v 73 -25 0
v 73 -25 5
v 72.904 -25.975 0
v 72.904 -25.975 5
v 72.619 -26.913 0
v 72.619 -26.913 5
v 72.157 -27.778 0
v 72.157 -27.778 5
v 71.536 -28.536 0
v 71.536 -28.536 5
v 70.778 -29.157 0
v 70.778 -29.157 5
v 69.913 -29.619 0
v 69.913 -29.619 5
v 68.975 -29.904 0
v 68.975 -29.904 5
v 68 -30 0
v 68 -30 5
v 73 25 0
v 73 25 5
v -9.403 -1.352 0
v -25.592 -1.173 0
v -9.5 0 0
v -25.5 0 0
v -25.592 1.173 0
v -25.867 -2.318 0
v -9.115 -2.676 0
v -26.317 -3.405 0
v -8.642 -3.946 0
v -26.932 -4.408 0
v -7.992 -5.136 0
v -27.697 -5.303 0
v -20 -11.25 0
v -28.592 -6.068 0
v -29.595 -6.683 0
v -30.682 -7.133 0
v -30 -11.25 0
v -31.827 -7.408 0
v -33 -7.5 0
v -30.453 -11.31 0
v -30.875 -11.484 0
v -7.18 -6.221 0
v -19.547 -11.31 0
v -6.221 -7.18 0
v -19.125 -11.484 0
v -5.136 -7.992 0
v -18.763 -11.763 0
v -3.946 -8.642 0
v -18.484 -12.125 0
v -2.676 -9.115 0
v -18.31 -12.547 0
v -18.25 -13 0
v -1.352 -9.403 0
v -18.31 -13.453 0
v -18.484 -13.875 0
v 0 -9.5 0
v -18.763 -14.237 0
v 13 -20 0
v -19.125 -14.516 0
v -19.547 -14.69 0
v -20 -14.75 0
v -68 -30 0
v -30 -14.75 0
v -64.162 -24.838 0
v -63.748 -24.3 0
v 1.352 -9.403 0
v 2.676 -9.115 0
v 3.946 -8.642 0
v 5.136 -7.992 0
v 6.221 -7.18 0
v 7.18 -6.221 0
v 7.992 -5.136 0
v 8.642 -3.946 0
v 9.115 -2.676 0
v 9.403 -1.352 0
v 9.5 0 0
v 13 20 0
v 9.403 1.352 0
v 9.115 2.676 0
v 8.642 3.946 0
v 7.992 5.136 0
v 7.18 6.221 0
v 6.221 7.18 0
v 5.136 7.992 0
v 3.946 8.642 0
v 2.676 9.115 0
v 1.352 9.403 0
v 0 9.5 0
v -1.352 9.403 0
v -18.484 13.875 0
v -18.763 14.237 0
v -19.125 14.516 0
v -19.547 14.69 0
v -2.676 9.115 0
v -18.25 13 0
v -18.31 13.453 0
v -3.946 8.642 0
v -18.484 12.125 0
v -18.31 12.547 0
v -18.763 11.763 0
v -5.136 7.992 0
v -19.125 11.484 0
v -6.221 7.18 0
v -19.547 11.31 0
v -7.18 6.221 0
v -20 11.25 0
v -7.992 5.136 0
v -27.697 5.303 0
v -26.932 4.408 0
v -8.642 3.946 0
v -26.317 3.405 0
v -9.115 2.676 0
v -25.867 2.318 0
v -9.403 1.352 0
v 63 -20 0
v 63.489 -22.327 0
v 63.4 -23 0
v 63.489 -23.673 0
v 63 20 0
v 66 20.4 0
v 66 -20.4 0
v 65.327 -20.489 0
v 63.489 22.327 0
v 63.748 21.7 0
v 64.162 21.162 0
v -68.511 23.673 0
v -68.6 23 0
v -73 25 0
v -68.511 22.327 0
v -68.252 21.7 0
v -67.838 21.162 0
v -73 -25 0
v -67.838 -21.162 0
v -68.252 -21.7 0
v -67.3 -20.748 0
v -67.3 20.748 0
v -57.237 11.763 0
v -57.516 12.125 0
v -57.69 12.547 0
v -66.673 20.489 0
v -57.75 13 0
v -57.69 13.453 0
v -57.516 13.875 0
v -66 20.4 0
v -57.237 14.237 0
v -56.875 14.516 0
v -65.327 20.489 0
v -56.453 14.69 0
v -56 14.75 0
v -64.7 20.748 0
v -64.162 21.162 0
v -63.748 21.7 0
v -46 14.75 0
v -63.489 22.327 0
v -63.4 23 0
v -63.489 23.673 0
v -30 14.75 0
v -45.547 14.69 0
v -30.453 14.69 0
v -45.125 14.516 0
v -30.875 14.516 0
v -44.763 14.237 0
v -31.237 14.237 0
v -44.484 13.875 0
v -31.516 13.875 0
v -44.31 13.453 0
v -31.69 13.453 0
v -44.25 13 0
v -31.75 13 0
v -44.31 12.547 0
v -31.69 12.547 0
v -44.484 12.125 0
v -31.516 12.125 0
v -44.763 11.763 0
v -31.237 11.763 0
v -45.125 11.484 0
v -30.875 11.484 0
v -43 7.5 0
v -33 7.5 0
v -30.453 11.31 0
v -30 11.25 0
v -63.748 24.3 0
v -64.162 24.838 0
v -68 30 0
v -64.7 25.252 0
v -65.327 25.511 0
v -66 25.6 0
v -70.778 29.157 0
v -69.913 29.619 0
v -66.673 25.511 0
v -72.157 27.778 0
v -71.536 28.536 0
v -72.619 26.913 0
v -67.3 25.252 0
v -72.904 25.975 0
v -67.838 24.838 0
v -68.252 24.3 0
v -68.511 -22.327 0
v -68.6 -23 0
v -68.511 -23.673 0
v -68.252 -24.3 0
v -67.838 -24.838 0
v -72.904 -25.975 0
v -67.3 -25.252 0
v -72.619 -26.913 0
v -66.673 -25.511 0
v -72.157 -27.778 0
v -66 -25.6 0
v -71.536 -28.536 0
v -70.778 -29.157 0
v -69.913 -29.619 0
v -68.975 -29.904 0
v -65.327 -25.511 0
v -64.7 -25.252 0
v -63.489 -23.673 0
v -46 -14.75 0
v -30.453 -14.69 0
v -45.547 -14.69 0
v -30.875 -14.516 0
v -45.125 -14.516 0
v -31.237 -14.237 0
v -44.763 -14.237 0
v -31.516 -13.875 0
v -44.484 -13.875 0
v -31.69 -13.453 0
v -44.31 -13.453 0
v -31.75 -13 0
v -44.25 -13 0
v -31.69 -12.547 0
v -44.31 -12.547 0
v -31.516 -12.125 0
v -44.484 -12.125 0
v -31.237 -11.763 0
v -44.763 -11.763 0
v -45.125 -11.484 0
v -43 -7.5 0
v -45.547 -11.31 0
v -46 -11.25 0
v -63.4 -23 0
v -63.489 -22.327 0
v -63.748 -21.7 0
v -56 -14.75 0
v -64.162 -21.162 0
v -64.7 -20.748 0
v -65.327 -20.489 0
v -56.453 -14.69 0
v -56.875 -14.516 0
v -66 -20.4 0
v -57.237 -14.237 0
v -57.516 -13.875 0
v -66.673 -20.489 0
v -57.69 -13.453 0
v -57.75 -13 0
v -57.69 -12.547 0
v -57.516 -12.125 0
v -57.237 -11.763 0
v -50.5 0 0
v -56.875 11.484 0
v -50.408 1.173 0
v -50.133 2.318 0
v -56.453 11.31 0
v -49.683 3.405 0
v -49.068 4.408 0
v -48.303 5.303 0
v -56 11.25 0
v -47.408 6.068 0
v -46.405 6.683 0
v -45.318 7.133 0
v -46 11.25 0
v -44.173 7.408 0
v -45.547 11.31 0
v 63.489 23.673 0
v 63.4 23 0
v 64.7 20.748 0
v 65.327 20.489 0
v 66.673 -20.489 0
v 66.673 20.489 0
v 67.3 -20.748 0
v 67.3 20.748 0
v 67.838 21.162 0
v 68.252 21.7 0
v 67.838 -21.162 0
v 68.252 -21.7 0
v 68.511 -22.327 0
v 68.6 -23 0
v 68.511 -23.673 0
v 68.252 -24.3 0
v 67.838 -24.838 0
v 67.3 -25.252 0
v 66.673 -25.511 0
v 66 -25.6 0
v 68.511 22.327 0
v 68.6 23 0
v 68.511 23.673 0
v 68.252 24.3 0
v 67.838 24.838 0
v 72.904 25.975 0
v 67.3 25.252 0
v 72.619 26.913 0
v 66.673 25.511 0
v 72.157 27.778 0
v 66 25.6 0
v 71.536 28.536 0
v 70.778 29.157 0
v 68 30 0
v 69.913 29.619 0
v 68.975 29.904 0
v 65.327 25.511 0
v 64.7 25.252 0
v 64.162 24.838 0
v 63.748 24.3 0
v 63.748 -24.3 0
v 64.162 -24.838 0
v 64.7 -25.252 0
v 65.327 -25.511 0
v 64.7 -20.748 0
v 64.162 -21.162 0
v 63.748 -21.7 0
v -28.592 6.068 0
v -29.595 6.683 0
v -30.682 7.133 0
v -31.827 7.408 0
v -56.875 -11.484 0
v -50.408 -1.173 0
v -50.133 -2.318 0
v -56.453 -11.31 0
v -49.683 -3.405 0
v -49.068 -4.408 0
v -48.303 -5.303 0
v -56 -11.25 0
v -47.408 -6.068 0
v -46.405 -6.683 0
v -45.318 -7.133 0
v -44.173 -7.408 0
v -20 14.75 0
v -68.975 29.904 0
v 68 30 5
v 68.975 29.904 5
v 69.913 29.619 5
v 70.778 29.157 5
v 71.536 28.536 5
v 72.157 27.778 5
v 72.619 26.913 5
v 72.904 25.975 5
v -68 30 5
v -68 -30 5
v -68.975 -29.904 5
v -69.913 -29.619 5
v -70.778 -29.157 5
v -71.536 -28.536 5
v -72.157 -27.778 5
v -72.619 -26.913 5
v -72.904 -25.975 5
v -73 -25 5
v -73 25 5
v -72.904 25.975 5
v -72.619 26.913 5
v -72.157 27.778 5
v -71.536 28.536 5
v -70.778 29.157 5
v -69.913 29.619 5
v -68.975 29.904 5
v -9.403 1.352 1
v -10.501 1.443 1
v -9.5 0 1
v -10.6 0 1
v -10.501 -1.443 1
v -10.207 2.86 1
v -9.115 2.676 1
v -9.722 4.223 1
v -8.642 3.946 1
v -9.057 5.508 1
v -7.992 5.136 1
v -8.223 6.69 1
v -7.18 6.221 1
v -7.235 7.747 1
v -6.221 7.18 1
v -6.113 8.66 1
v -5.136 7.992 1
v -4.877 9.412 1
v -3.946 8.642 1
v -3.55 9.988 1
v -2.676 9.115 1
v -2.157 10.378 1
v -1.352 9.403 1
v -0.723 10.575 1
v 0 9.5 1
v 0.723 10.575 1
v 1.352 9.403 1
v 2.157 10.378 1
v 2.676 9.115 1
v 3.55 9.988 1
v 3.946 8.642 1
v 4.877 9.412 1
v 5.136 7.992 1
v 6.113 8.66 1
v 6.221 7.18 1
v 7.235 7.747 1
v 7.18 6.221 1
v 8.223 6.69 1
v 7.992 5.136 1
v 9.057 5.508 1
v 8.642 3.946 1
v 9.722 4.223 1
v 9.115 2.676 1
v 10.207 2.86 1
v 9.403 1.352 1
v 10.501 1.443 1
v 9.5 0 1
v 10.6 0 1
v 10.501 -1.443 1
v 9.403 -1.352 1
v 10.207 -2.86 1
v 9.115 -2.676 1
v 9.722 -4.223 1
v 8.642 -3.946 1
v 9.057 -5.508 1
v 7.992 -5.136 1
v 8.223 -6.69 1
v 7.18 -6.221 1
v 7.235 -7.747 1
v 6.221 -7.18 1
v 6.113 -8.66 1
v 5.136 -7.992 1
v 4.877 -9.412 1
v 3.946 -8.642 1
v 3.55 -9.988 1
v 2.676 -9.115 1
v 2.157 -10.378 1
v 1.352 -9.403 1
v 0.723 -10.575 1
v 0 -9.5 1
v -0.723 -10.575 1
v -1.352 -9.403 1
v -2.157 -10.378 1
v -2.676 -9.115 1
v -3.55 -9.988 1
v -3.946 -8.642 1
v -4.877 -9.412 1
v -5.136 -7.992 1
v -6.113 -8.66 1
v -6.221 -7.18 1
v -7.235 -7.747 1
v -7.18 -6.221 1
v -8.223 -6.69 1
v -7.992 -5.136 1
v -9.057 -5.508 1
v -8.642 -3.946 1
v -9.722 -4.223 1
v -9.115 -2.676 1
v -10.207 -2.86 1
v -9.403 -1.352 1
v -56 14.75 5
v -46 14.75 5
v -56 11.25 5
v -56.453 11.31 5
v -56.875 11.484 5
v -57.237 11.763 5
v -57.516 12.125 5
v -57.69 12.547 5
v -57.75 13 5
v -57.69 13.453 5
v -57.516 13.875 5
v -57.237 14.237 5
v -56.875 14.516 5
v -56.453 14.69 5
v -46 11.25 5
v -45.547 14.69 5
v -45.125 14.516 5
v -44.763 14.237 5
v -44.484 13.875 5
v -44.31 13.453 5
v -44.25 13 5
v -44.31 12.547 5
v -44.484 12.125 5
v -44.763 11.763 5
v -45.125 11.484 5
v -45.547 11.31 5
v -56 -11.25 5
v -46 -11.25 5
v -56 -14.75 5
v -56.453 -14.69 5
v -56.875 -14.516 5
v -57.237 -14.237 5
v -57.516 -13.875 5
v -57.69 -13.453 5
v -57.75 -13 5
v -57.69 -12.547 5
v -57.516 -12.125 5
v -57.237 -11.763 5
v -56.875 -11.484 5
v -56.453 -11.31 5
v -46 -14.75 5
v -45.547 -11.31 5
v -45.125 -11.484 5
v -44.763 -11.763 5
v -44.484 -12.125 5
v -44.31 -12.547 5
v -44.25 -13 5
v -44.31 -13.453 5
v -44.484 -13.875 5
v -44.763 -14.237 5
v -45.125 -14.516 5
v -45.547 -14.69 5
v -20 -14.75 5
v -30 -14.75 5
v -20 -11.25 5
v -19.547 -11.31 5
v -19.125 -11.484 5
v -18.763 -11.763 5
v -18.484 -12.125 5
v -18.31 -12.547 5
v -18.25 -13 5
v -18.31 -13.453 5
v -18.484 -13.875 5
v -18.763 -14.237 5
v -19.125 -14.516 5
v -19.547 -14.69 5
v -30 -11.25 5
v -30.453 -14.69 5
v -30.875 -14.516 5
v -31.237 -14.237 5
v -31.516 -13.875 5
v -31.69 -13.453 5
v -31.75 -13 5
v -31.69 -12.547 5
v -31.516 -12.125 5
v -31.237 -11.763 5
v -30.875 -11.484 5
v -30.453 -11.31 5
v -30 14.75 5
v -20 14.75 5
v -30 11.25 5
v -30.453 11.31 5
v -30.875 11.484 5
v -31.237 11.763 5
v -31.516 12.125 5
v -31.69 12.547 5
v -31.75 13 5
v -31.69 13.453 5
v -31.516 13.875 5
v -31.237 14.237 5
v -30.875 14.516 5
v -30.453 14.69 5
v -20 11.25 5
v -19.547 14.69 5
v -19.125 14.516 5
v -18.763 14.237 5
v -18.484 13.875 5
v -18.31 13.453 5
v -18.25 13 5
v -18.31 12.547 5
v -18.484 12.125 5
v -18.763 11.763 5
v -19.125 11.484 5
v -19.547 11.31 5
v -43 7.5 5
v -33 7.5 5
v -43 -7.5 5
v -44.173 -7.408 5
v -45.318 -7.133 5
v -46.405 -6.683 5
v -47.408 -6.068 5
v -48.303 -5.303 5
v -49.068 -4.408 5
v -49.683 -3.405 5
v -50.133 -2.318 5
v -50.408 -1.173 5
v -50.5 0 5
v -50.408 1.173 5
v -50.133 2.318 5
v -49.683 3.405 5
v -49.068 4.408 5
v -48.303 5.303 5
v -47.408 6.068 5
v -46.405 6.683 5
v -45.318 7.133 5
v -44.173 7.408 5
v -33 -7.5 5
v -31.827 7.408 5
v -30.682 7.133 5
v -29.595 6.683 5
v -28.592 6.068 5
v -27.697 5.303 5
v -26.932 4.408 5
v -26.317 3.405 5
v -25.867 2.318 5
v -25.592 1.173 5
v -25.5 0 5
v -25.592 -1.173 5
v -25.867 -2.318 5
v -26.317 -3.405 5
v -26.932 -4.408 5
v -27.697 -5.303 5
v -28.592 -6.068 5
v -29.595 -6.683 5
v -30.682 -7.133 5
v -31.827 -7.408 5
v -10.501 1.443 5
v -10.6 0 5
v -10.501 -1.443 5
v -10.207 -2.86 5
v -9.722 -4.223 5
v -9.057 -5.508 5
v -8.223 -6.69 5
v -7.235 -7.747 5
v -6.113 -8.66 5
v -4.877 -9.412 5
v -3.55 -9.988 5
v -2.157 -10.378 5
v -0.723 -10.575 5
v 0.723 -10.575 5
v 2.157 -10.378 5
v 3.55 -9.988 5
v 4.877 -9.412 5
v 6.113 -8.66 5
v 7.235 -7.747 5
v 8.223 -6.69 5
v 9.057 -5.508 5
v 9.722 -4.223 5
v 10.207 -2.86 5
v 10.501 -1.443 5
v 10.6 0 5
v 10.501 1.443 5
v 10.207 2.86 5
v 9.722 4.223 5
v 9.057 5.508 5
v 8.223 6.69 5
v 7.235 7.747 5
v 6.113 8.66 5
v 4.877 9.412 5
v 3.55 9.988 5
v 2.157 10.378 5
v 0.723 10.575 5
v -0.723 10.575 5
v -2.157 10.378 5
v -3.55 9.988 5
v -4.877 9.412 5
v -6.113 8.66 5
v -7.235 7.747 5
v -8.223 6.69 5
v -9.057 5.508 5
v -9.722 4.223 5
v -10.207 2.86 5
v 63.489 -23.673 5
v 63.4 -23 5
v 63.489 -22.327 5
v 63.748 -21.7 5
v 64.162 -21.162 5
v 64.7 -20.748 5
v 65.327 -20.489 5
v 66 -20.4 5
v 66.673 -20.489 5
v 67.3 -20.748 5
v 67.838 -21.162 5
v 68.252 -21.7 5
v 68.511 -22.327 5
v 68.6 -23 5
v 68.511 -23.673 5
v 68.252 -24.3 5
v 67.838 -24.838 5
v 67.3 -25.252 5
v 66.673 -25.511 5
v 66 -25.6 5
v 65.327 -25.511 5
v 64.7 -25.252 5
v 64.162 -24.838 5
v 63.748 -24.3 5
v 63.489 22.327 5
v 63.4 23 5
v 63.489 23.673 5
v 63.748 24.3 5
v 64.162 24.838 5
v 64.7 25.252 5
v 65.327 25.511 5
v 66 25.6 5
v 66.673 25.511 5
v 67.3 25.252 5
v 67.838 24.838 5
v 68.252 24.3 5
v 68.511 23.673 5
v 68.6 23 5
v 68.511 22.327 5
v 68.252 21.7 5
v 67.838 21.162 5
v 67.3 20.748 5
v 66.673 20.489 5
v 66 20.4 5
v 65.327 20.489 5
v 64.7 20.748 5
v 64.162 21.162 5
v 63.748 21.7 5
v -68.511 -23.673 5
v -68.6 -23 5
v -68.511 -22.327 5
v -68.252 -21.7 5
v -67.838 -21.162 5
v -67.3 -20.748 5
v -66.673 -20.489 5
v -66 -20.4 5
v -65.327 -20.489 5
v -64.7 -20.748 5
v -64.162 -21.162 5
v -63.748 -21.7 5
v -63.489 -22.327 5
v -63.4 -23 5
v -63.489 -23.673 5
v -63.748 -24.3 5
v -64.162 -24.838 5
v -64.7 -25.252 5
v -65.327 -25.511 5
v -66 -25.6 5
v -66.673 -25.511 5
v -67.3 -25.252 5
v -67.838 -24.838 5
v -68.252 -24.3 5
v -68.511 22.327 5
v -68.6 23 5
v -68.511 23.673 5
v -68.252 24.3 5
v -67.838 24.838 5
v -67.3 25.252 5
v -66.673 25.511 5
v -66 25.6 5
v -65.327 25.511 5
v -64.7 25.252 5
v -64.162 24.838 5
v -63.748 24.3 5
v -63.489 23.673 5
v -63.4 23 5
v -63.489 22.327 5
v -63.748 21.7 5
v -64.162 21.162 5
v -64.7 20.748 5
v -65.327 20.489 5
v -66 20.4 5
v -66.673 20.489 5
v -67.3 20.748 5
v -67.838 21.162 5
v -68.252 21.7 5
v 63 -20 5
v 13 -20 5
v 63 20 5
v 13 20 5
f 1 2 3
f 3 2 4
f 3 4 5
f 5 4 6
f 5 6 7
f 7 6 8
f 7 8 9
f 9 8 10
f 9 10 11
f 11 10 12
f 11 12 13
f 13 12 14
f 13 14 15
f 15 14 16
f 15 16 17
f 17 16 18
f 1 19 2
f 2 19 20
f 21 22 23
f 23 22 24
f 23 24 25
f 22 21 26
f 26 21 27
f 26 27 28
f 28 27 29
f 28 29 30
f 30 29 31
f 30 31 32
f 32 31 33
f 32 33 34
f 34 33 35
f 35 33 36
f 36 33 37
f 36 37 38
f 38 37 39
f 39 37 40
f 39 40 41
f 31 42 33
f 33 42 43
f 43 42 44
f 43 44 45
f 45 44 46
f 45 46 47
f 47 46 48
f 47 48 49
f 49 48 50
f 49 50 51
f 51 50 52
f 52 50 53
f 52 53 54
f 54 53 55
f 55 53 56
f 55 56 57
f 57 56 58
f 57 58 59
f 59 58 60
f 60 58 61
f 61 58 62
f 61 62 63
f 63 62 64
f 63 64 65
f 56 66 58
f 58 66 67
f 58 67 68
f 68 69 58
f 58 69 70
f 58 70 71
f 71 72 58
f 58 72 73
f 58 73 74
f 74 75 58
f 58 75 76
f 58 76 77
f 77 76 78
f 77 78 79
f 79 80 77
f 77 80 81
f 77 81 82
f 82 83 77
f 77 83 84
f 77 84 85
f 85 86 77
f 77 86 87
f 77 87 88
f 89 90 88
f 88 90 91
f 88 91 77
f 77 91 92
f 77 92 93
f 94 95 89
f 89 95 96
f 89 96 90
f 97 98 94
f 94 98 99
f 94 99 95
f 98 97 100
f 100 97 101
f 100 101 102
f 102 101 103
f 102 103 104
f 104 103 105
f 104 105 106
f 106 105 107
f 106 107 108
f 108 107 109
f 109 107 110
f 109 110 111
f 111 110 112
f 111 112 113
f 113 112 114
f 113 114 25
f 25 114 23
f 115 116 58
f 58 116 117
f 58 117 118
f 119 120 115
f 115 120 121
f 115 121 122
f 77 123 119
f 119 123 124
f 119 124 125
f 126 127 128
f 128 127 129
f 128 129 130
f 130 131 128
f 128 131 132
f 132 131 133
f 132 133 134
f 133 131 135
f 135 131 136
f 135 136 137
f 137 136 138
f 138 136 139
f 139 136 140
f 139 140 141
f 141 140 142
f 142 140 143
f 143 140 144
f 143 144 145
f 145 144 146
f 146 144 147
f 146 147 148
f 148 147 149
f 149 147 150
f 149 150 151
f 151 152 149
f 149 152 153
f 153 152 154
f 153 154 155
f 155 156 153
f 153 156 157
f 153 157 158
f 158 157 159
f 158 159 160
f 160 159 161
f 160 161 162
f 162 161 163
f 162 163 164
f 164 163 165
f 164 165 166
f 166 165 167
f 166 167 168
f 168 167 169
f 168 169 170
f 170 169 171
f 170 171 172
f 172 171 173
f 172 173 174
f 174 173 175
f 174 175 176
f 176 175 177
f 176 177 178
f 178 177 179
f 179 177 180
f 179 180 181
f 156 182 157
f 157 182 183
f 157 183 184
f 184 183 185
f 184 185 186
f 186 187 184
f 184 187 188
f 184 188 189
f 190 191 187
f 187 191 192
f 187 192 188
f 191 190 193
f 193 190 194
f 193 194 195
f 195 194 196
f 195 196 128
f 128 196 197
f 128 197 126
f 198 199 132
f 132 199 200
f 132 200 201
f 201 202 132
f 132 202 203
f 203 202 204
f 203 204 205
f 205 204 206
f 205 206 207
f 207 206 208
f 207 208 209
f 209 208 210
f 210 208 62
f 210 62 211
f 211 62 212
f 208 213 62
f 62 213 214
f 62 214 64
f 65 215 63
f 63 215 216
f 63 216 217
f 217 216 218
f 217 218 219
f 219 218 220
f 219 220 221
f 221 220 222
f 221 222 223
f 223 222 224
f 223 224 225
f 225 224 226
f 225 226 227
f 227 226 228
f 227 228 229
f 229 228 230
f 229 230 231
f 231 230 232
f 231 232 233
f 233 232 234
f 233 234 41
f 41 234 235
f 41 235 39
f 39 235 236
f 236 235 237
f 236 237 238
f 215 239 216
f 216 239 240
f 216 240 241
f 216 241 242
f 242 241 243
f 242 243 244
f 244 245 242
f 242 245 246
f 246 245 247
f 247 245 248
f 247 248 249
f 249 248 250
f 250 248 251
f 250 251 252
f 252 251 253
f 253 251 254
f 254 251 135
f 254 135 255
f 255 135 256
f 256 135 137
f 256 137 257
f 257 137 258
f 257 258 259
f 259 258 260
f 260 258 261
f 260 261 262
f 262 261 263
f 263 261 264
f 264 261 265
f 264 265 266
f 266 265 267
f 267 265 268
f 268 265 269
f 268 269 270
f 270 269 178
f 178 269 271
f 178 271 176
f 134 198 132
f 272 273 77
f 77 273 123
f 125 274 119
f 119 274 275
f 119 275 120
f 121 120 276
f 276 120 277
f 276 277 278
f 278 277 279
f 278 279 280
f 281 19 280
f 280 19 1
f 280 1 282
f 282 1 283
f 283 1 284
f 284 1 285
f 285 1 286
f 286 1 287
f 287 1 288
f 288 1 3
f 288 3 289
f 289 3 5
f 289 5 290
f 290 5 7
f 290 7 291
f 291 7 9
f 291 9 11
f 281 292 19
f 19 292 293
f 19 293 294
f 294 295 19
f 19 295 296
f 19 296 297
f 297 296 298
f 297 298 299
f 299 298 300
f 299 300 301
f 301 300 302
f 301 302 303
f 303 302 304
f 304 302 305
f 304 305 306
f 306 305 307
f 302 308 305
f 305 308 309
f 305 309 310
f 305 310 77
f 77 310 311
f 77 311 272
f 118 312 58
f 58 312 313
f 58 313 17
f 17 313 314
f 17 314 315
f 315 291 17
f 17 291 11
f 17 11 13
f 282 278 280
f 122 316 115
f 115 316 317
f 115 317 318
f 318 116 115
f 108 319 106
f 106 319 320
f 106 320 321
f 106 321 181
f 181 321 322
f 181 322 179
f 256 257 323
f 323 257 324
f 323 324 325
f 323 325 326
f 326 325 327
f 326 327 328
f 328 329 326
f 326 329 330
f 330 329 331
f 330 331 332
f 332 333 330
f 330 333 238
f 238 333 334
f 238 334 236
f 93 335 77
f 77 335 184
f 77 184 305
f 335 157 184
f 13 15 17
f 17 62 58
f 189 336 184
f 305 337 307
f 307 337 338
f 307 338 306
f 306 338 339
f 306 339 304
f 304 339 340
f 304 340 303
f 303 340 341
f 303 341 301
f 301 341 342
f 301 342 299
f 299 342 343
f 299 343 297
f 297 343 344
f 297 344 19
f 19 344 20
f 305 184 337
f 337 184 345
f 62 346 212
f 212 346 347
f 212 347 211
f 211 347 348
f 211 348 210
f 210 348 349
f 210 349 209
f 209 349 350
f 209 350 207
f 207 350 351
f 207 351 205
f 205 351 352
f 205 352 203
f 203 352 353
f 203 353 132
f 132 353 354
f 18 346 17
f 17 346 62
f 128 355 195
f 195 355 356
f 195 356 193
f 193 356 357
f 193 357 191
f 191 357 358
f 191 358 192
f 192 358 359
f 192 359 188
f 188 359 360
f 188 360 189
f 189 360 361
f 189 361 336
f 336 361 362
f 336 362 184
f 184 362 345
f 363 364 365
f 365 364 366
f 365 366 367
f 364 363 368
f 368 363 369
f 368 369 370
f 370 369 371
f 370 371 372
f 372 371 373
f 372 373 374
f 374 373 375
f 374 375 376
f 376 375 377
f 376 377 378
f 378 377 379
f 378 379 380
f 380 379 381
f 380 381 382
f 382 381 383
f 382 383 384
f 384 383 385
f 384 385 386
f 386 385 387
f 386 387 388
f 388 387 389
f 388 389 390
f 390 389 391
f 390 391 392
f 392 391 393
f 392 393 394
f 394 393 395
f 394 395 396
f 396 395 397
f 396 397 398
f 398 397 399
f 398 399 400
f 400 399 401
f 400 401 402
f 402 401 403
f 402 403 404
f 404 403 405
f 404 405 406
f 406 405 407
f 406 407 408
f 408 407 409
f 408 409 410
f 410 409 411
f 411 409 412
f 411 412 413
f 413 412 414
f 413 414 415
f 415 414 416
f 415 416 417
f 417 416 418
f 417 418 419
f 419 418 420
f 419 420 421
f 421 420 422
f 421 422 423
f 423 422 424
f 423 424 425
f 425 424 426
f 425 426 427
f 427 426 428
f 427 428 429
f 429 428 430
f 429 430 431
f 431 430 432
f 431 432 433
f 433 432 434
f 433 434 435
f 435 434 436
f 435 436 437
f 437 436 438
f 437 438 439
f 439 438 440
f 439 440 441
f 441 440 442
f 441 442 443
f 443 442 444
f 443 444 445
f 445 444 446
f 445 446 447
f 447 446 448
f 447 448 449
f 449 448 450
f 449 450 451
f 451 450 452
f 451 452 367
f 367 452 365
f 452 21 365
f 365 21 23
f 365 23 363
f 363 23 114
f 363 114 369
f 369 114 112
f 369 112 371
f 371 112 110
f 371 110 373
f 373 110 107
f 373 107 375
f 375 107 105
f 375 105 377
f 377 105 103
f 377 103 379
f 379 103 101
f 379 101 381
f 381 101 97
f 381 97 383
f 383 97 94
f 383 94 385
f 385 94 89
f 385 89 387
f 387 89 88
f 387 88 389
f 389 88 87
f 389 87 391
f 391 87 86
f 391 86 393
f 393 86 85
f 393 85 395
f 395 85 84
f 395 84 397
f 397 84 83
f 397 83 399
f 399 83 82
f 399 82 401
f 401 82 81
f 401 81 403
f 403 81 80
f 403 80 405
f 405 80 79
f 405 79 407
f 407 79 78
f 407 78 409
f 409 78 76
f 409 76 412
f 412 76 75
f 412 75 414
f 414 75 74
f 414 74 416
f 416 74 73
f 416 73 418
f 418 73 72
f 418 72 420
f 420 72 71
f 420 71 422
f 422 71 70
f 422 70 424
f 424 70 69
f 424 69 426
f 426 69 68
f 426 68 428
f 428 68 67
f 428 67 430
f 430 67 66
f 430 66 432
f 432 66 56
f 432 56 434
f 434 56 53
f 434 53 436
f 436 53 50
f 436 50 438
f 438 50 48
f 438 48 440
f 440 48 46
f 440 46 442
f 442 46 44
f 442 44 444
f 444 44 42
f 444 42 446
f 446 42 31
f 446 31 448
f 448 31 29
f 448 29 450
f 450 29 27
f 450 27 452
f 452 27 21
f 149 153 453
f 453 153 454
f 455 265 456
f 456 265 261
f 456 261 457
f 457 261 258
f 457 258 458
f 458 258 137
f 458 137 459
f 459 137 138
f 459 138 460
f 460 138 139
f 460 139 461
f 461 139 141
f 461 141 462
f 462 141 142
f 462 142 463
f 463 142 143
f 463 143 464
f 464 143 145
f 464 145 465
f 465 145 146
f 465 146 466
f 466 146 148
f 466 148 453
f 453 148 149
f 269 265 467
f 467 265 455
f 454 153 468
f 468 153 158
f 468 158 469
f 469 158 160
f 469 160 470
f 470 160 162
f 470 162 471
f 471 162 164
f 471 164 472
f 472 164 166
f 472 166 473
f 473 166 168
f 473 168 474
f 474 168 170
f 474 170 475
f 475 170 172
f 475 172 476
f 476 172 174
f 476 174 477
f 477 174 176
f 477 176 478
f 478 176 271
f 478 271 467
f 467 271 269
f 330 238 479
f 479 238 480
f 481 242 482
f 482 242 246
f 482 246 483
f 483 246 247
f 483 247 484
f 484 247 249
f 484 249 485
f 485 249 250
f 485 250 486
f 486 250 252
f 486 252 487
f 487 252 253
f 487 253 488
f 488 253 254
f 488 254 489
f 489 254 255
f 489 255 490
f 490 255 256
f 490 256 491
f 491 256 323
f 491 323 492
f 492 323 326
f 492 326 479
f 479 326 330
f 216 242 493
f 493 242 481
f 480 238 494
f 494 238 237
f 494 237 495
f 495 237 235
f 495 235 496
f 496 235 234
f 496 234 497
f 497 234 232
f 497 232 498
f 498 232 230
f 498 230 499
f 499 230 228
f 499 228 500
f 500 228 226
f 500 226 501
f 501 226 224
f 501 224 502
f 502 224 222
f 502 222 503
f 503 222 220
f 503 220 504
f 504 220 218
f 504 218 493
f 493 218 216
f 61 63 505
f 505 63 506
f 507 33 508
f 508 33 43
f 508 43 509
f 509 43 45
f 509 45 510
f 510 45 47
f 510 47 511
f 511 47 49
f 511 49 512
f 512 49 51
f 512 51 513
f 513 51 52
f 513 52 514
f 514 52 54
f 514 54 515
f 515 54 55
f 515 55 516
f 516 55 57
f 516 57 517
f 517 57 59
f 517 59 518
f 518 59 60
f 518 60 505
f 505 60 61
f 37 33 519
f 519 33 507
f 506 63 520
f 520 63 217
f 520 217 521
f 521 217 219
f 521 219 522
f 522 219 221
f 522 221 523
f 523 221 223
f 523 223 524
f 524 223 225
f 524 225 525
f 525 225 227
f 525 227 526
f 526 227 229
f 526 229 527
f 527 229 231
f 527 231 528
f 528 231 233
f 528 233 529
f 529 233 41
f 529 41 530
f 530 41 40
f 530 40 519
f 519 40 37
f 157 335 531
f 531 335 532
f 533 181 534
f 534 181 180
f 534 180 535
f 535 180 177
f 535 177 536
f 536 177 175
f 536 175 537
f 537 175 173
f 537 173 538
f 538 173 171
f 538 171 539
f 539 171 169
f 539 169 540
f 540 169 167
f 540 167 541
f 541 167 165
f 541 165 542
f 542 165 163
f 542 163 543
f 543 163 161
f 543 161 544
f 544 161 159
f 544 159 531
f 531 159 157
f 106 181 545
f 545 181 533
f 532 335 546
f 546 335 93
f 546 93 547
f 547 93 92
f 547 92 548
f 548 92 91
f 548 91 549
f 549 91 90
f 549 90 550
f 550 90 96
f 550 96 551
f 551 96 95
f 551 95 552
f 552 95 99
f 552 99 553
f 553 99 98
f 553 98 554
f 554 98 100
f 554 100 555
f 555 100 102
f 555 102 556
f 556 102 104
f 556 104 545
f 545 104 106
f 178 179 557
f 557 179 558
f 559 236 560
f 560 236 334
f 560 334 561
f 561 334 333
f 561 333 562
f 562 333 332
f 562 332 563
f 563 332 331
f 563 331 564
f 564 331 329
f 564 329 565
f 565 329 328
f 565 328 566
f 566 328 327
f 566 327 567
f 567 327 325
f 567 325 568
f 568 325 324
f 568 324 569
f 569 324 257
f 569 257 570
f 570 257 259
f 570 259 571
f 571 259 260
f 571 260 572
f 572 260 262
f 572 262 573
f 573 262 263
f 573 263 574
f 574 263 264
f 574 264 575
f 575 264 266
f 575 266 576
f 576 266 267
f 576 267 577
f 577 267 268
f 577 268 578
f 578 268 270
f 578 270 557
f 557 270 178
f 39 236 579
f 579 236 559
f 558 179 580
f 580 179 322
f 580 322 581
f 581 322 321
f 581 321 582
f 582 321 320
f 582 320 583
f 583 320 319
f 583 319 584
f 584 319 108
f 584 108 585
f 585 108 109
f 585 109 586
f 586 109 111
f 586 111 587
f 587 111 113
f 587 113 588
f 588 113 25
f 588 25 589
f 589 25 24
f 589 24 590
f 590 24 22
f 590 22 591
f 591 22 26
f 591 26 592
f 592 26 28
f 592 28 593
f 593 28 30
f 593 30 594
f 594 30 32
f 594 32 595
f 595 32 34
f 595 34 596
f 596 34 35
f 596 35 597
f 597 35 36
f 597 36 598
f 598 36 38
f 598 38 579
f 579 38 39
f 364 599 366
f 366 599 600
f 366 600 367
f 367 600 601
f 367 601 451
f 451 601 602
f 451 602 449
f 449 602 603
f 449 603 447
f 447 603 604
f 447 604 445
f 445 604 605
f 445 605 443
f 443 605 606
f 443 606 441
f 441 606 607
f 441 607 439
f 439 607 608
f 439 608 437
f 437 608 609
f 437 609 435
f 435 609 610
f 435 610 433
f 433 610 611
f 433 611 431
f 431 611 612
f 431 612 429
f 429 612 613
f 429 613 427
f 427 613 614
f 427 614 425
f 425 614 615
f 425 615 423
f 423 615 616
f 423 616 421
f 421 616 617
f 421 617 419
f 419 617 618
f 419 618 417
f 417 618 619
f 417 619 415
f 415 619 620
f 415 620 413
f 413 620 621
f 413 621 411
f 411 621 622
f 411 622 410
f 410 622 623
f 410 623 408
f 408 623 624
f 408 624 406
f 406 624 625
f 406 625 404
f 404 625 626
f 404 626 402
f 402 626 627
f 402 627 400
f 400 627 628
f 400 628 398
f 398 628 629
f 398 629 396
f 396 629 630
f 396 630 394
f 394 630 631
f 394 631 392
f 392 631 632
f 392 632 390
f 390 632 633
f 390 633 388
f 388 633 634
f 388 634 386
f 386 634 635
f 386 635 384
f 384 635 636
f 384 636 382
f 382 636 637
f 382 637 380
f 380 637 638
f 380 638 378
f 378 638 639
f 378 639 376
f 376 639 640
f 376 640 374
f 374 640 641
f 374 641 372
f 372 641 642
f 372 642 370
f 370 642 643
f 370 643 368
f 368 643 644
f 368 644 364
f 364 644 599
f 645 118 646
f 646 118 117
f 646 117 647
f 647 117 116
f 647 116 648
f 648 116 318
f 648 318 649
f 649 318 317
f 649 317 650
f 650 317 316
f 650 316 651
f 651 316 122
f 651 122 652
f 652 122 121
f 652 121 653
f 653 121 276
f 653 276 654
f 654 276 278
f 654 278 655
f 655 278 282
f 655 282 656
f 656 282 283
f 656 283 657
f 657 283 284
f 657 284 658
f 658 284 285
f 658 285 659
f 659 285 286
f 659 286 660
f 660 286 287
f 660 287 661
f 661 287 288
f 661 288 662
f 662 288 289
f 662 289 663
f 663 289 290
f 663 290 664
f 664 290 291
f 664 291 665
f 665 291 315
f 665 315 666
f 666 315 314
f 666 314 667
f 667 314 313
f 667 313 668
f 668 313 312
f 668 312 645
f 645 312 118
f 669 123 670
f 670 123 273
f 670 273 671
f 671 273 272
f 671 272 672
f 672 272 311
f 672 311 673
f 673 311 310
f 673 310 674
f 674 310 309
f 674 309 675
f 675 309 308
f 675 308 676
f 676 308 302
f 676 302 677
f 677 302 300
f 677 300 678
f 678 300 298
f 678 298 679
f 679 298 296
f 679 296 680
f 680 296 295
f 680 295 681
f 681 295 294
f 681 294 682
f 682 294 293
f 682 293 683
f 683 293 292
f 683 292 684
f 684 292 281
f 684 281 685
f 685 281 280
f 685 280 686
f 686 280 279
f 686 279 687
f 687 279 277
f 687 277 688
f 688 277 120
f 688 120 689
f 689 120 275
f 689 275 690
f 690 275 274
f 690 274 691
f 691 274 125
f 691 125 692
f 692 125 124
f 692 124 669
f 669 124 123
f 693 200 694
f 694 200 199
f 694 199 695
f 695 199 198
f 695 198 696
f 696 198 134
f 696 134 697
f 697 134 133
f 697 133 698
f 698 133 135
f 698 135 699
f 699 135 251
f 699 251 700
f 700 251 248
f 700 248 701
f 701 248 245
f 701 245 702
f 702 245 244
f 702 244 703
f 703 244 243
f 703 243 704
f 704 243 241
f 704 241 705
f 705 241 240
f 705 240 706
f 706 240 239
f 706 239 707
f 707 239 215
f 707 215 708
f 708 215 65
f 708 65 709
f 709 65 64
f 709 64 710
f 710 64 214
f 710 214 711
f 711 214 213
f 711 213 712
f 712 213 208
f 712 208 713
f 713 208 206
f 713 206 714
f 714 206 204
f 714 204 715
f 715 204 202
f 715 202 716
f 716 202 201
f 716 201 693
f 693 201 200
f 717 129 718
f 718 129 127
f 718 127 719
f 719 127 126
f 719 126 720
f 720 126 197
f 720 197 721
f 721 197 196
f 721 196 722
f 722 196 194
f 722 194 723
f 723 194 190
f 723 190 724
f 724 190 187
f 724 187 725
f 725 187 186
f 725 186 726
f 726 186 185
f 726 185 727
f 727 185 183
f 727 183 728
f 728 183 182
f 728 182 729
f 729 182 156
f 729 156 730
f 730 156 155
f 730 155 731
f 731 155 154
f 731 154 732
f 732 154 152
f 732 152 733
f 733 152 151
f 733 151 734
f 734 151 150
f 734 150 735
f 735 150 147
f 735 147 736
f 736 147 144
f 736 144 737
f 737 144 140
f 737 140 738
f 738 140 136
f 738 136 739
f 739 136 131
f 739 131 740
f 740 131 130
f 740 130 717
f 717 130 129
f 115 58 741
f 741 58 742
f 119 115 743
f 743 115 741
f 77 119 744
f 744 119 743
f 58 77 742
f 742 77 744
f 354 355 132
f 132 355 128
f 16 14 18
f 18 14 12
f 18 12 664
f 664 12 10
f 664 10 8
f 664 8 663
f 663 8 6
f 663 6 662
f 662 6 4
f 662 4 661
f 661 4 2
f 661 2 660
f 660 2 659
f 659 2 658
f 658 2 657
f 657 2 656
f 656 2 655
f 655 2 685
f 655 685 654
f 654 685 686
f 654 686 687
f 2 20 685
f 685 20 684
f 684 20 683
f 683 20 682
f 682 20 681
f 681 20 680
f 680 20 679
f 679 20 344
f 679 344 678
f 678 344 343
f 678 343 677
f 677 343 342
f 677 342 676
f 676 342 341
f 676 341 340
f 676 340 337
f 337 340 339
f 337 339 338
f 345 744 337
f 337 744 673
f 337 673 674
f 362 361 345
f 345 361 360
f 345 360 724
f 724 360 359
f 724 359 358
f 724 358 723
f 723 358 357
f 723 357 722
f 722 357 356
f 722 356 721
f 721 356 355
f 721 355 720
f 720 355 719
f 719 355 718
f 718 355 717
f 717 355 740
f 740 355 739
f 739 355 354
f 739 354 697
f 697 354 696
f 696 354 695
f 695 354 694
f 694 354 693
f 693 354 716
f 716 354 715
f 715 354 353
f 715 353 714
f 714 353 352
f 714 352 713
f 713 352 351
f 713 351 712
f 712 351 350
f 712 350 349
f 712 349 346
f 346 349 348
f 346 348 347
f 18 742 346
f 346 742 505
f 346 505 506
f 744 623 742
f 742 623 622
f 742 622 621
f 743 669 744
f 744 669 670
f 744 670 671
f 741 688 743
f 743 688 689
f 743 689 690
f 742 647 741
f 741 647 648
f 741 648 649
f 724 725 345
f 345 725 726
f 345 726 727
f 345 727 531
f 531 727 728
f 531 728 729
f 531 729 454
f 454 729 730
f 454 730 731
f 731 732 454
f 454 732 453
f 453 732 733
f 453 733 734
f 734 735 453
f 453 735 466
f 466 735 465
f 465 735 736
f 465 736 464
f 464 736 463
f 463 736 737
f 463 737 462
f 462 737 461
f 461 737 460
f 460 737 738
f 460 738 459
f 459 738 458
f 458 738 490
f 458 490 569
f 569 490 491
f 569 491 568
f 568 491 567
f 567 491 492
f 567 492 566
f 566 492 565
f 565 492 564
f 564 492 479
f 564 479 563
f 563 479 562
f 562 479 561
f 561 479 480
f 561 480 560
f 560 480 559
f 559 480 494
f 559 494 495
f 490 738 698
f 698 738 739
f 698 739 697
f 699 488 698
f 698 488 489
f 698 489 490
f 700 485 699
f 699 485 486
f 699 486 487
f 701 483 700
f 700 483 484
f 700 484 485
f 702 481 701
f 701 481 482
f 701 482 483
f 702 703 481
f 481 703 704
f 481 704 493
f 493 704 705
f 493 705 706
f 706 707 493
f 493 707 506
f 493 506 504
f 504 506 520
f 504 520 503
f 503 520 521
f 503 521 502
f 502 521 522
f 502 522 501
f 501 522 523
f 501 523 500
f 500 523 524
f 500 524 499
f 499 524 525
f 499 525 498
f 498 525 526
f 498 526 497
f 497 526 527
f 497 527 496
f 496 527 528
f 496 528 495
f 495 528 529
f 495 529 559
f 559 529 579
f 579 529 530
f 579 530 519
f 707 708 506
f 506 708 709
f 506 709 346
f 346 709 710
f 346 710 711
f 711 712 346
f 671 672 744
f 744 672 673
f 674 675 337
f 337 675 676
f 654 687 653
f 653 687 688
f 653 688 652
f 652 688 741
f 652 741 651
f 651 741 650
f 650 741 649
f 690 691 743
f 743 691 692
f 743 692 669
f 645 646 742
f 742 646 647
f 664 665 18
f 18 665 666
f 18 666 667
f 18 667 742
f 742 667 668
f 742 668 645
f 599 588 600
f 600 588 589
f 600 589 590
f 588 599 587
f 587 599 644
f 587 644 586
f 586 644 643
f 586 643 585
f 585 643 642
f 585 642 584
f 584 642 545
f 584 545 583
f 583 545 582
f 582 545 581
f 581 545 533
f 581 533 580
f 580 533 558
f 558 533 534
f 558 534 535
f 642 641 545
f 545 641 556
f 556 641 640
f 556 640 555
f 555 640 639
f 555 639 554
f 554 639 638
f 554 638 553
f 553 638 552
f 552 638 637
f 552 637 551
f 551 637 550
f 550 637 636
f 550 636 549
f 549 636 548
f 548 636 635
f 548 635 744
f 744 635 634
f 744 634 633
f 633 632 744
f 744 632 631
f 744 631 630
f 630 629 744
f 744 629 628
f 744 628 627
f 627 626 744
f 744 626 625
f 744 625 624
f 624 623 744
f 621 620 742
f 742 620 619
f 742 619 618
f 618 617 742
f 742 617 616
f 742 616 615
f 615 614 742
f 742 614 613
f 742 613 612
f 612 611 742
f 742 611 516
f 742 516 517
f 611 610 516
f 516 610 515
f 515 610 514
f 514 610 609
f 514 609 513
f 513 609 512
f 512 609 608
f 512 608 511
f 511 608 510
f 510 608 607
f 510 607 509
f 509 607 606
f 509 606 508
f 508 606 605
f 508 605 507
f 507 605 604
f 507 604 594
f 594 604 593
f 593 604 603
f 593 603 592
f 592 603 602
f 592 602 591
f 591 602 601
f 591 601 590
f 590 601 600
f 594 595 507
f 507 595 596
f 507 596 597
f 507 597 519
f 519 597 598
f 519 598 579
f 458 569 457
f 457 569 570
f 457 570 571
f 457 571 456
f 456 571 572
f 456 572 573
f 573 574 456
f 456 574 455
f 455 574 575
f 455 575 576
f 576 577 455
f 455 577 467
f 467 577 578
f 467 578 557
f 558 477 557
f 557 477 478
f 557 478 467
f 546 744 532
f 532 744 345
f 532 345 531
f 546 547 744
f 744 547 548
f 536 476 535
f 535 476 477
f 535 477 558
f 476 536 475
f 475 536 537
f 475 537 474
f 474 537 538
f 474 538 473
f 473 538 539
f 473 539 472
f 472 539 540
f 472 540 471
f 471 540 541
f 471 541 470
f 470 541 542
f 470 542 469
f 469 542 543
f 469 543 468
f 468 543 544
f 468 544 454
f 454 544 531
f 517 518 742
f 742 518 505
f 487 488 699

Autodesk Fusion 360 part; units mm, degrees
sketch "Sketch1" plane through (0, 0, 0) normal (0, 0, 1) x (1, 0, 0)
  circle A0 centre (0, 0) radius 10.6
  line L0 (-33, 7.5) -> (-43, 7.5)
  arc A1 (-43, 7.5) -> (-43, -7.5) centre (-43, 0) ccw
  line L1 (-43, -7.5) -> (-33, -7.5)
  arc A2 (-33, -7.5) -> (-33, 7.5) centre (-33, 0) ccw
  line L2 (-25.5, 0) -> (-50.5, 0) construction
  line L3 (-20, 14.75) -> (-30, 14.75)
  arc A3 (-30, 14.75) -> (-30, 11.25) centre (-30, 13) ccw
  line L4 (-30, 11.25) -> (-20, 11.25)
  arc A4 (-20, 11.25) -> (-20, 14.75) centre (-20, 13) ccw
  line L5 (-18.25, 13) -> (-31.75, 13) construction
  line L6 (-43, 0) -> (-33, 0) construction
  line L7 (-30, 13) -> (-20, 13) construction
  line L8 (0, 0) -> (-73, 0) construction
  line L9 (-20, -14.75) -> (-30, -14.75)
  arc A5 (-30, -11.25) -> (-30, -14.75) centre (-30, -13) ccw
  line L10 (-30, -11.25) -> (-20, -11.25)
  arc A6 (-20, -14.75) -> (-20, -11.25) centre (-20, -13) ccw
  line L11 (-38, 0) -> (-38, 13) construction
  line L12 (-56, 14.75) -> (-46, 14.75)
  arc A7 (-46, 11.25) -> (-46, 14.75) centre (-46, 13) ccw
  line L13 (-46, 11.25) -> (-56, 11.25)
  arc A8 (-56, 14.75) -> (-56, 11.25) centre (-56, 13) ccw
  line L14 (-56, -14.75) -> (-46, -14.75)
  arc A9 (-56, -11.25) -> (-56, -14.75) centre (-56, -13) ccw
  line L15 (-46, -11.25) -> (-56, -11.25)
  arc A10 (-46, -14.75) -> (-46, -11.25) centre (-46, -13) ccw
  line L16 (-73, 30) -> (73, 30)
  line L17 (73, 30) -> (73, -30)
  line L18 (73, -30) -> (-73, -30)
  line L19 (-73, -30) -> (-73, 30)
  line L20 (-63, 20) -> (-13, 20) construction
  line L21 (-13, 20) -> (-13, -20) construction
  line L22 (-13, -20) -> (-63, -20) construction
  line L23 (-63, -20) -> (-63, 20) construction
  line L24 (0, 30) -> (0, -30) construction
  line L25 (63, 20) -> (13, 20)
  line L26 (63, -20) -> (63, 20)
  line L27 (13, -20) -> (63, -20)
  line L28 (13, 20) -> (13, -20)
  circle A11 centre (-66, 23) radius 2.6
  circle A12 centre (-66, -23) radius 2.6
  circle A13 centre (66, 23) radius 2.6
  circle A14 centre (66, -23) radius 2.6
  point P0 (-38, 0)
  point P1 (0, -30)
  point P2 (-63, 0)
  dimension "d1" = 21.2
  dimension "d2" = 10
  dimension "d3" = 15
  dimension "d4" = 20
  dimension "d5" = 26
  dimension "d6" = 3.5
  dimension "d7" = 26
  dimension "d12" = 7
  dimension "d13" = 7
  dimension "d14" = 7
  dimension "d15" = 10
  dimension "d16" = 10
  dimension "d17" = 5.2
  dimension "d18" = 7
  dimension "d19" = 7
extrude "Extrude1" add sketch "Sketch1" along normal blind 5
sketch "Sketch2" plane through (0, 0, 0) normal (0, 0, 1) x (1, 0, 0)
  circle A0 centre (0, 0) radius 11
  circle A1 centre (0, 0) radius 9.5
  dimension "d22" = 19
  dimension "d23" = 22
extrude "Extrude2" add sketch "Sketch2" along normal blind 1
fillet "Fillet1" radius 5 4 edges at (-73, 30, 2.5) (-73, -30, 2.5) (73, 30, 2.5) (73, -30, 2.5)
